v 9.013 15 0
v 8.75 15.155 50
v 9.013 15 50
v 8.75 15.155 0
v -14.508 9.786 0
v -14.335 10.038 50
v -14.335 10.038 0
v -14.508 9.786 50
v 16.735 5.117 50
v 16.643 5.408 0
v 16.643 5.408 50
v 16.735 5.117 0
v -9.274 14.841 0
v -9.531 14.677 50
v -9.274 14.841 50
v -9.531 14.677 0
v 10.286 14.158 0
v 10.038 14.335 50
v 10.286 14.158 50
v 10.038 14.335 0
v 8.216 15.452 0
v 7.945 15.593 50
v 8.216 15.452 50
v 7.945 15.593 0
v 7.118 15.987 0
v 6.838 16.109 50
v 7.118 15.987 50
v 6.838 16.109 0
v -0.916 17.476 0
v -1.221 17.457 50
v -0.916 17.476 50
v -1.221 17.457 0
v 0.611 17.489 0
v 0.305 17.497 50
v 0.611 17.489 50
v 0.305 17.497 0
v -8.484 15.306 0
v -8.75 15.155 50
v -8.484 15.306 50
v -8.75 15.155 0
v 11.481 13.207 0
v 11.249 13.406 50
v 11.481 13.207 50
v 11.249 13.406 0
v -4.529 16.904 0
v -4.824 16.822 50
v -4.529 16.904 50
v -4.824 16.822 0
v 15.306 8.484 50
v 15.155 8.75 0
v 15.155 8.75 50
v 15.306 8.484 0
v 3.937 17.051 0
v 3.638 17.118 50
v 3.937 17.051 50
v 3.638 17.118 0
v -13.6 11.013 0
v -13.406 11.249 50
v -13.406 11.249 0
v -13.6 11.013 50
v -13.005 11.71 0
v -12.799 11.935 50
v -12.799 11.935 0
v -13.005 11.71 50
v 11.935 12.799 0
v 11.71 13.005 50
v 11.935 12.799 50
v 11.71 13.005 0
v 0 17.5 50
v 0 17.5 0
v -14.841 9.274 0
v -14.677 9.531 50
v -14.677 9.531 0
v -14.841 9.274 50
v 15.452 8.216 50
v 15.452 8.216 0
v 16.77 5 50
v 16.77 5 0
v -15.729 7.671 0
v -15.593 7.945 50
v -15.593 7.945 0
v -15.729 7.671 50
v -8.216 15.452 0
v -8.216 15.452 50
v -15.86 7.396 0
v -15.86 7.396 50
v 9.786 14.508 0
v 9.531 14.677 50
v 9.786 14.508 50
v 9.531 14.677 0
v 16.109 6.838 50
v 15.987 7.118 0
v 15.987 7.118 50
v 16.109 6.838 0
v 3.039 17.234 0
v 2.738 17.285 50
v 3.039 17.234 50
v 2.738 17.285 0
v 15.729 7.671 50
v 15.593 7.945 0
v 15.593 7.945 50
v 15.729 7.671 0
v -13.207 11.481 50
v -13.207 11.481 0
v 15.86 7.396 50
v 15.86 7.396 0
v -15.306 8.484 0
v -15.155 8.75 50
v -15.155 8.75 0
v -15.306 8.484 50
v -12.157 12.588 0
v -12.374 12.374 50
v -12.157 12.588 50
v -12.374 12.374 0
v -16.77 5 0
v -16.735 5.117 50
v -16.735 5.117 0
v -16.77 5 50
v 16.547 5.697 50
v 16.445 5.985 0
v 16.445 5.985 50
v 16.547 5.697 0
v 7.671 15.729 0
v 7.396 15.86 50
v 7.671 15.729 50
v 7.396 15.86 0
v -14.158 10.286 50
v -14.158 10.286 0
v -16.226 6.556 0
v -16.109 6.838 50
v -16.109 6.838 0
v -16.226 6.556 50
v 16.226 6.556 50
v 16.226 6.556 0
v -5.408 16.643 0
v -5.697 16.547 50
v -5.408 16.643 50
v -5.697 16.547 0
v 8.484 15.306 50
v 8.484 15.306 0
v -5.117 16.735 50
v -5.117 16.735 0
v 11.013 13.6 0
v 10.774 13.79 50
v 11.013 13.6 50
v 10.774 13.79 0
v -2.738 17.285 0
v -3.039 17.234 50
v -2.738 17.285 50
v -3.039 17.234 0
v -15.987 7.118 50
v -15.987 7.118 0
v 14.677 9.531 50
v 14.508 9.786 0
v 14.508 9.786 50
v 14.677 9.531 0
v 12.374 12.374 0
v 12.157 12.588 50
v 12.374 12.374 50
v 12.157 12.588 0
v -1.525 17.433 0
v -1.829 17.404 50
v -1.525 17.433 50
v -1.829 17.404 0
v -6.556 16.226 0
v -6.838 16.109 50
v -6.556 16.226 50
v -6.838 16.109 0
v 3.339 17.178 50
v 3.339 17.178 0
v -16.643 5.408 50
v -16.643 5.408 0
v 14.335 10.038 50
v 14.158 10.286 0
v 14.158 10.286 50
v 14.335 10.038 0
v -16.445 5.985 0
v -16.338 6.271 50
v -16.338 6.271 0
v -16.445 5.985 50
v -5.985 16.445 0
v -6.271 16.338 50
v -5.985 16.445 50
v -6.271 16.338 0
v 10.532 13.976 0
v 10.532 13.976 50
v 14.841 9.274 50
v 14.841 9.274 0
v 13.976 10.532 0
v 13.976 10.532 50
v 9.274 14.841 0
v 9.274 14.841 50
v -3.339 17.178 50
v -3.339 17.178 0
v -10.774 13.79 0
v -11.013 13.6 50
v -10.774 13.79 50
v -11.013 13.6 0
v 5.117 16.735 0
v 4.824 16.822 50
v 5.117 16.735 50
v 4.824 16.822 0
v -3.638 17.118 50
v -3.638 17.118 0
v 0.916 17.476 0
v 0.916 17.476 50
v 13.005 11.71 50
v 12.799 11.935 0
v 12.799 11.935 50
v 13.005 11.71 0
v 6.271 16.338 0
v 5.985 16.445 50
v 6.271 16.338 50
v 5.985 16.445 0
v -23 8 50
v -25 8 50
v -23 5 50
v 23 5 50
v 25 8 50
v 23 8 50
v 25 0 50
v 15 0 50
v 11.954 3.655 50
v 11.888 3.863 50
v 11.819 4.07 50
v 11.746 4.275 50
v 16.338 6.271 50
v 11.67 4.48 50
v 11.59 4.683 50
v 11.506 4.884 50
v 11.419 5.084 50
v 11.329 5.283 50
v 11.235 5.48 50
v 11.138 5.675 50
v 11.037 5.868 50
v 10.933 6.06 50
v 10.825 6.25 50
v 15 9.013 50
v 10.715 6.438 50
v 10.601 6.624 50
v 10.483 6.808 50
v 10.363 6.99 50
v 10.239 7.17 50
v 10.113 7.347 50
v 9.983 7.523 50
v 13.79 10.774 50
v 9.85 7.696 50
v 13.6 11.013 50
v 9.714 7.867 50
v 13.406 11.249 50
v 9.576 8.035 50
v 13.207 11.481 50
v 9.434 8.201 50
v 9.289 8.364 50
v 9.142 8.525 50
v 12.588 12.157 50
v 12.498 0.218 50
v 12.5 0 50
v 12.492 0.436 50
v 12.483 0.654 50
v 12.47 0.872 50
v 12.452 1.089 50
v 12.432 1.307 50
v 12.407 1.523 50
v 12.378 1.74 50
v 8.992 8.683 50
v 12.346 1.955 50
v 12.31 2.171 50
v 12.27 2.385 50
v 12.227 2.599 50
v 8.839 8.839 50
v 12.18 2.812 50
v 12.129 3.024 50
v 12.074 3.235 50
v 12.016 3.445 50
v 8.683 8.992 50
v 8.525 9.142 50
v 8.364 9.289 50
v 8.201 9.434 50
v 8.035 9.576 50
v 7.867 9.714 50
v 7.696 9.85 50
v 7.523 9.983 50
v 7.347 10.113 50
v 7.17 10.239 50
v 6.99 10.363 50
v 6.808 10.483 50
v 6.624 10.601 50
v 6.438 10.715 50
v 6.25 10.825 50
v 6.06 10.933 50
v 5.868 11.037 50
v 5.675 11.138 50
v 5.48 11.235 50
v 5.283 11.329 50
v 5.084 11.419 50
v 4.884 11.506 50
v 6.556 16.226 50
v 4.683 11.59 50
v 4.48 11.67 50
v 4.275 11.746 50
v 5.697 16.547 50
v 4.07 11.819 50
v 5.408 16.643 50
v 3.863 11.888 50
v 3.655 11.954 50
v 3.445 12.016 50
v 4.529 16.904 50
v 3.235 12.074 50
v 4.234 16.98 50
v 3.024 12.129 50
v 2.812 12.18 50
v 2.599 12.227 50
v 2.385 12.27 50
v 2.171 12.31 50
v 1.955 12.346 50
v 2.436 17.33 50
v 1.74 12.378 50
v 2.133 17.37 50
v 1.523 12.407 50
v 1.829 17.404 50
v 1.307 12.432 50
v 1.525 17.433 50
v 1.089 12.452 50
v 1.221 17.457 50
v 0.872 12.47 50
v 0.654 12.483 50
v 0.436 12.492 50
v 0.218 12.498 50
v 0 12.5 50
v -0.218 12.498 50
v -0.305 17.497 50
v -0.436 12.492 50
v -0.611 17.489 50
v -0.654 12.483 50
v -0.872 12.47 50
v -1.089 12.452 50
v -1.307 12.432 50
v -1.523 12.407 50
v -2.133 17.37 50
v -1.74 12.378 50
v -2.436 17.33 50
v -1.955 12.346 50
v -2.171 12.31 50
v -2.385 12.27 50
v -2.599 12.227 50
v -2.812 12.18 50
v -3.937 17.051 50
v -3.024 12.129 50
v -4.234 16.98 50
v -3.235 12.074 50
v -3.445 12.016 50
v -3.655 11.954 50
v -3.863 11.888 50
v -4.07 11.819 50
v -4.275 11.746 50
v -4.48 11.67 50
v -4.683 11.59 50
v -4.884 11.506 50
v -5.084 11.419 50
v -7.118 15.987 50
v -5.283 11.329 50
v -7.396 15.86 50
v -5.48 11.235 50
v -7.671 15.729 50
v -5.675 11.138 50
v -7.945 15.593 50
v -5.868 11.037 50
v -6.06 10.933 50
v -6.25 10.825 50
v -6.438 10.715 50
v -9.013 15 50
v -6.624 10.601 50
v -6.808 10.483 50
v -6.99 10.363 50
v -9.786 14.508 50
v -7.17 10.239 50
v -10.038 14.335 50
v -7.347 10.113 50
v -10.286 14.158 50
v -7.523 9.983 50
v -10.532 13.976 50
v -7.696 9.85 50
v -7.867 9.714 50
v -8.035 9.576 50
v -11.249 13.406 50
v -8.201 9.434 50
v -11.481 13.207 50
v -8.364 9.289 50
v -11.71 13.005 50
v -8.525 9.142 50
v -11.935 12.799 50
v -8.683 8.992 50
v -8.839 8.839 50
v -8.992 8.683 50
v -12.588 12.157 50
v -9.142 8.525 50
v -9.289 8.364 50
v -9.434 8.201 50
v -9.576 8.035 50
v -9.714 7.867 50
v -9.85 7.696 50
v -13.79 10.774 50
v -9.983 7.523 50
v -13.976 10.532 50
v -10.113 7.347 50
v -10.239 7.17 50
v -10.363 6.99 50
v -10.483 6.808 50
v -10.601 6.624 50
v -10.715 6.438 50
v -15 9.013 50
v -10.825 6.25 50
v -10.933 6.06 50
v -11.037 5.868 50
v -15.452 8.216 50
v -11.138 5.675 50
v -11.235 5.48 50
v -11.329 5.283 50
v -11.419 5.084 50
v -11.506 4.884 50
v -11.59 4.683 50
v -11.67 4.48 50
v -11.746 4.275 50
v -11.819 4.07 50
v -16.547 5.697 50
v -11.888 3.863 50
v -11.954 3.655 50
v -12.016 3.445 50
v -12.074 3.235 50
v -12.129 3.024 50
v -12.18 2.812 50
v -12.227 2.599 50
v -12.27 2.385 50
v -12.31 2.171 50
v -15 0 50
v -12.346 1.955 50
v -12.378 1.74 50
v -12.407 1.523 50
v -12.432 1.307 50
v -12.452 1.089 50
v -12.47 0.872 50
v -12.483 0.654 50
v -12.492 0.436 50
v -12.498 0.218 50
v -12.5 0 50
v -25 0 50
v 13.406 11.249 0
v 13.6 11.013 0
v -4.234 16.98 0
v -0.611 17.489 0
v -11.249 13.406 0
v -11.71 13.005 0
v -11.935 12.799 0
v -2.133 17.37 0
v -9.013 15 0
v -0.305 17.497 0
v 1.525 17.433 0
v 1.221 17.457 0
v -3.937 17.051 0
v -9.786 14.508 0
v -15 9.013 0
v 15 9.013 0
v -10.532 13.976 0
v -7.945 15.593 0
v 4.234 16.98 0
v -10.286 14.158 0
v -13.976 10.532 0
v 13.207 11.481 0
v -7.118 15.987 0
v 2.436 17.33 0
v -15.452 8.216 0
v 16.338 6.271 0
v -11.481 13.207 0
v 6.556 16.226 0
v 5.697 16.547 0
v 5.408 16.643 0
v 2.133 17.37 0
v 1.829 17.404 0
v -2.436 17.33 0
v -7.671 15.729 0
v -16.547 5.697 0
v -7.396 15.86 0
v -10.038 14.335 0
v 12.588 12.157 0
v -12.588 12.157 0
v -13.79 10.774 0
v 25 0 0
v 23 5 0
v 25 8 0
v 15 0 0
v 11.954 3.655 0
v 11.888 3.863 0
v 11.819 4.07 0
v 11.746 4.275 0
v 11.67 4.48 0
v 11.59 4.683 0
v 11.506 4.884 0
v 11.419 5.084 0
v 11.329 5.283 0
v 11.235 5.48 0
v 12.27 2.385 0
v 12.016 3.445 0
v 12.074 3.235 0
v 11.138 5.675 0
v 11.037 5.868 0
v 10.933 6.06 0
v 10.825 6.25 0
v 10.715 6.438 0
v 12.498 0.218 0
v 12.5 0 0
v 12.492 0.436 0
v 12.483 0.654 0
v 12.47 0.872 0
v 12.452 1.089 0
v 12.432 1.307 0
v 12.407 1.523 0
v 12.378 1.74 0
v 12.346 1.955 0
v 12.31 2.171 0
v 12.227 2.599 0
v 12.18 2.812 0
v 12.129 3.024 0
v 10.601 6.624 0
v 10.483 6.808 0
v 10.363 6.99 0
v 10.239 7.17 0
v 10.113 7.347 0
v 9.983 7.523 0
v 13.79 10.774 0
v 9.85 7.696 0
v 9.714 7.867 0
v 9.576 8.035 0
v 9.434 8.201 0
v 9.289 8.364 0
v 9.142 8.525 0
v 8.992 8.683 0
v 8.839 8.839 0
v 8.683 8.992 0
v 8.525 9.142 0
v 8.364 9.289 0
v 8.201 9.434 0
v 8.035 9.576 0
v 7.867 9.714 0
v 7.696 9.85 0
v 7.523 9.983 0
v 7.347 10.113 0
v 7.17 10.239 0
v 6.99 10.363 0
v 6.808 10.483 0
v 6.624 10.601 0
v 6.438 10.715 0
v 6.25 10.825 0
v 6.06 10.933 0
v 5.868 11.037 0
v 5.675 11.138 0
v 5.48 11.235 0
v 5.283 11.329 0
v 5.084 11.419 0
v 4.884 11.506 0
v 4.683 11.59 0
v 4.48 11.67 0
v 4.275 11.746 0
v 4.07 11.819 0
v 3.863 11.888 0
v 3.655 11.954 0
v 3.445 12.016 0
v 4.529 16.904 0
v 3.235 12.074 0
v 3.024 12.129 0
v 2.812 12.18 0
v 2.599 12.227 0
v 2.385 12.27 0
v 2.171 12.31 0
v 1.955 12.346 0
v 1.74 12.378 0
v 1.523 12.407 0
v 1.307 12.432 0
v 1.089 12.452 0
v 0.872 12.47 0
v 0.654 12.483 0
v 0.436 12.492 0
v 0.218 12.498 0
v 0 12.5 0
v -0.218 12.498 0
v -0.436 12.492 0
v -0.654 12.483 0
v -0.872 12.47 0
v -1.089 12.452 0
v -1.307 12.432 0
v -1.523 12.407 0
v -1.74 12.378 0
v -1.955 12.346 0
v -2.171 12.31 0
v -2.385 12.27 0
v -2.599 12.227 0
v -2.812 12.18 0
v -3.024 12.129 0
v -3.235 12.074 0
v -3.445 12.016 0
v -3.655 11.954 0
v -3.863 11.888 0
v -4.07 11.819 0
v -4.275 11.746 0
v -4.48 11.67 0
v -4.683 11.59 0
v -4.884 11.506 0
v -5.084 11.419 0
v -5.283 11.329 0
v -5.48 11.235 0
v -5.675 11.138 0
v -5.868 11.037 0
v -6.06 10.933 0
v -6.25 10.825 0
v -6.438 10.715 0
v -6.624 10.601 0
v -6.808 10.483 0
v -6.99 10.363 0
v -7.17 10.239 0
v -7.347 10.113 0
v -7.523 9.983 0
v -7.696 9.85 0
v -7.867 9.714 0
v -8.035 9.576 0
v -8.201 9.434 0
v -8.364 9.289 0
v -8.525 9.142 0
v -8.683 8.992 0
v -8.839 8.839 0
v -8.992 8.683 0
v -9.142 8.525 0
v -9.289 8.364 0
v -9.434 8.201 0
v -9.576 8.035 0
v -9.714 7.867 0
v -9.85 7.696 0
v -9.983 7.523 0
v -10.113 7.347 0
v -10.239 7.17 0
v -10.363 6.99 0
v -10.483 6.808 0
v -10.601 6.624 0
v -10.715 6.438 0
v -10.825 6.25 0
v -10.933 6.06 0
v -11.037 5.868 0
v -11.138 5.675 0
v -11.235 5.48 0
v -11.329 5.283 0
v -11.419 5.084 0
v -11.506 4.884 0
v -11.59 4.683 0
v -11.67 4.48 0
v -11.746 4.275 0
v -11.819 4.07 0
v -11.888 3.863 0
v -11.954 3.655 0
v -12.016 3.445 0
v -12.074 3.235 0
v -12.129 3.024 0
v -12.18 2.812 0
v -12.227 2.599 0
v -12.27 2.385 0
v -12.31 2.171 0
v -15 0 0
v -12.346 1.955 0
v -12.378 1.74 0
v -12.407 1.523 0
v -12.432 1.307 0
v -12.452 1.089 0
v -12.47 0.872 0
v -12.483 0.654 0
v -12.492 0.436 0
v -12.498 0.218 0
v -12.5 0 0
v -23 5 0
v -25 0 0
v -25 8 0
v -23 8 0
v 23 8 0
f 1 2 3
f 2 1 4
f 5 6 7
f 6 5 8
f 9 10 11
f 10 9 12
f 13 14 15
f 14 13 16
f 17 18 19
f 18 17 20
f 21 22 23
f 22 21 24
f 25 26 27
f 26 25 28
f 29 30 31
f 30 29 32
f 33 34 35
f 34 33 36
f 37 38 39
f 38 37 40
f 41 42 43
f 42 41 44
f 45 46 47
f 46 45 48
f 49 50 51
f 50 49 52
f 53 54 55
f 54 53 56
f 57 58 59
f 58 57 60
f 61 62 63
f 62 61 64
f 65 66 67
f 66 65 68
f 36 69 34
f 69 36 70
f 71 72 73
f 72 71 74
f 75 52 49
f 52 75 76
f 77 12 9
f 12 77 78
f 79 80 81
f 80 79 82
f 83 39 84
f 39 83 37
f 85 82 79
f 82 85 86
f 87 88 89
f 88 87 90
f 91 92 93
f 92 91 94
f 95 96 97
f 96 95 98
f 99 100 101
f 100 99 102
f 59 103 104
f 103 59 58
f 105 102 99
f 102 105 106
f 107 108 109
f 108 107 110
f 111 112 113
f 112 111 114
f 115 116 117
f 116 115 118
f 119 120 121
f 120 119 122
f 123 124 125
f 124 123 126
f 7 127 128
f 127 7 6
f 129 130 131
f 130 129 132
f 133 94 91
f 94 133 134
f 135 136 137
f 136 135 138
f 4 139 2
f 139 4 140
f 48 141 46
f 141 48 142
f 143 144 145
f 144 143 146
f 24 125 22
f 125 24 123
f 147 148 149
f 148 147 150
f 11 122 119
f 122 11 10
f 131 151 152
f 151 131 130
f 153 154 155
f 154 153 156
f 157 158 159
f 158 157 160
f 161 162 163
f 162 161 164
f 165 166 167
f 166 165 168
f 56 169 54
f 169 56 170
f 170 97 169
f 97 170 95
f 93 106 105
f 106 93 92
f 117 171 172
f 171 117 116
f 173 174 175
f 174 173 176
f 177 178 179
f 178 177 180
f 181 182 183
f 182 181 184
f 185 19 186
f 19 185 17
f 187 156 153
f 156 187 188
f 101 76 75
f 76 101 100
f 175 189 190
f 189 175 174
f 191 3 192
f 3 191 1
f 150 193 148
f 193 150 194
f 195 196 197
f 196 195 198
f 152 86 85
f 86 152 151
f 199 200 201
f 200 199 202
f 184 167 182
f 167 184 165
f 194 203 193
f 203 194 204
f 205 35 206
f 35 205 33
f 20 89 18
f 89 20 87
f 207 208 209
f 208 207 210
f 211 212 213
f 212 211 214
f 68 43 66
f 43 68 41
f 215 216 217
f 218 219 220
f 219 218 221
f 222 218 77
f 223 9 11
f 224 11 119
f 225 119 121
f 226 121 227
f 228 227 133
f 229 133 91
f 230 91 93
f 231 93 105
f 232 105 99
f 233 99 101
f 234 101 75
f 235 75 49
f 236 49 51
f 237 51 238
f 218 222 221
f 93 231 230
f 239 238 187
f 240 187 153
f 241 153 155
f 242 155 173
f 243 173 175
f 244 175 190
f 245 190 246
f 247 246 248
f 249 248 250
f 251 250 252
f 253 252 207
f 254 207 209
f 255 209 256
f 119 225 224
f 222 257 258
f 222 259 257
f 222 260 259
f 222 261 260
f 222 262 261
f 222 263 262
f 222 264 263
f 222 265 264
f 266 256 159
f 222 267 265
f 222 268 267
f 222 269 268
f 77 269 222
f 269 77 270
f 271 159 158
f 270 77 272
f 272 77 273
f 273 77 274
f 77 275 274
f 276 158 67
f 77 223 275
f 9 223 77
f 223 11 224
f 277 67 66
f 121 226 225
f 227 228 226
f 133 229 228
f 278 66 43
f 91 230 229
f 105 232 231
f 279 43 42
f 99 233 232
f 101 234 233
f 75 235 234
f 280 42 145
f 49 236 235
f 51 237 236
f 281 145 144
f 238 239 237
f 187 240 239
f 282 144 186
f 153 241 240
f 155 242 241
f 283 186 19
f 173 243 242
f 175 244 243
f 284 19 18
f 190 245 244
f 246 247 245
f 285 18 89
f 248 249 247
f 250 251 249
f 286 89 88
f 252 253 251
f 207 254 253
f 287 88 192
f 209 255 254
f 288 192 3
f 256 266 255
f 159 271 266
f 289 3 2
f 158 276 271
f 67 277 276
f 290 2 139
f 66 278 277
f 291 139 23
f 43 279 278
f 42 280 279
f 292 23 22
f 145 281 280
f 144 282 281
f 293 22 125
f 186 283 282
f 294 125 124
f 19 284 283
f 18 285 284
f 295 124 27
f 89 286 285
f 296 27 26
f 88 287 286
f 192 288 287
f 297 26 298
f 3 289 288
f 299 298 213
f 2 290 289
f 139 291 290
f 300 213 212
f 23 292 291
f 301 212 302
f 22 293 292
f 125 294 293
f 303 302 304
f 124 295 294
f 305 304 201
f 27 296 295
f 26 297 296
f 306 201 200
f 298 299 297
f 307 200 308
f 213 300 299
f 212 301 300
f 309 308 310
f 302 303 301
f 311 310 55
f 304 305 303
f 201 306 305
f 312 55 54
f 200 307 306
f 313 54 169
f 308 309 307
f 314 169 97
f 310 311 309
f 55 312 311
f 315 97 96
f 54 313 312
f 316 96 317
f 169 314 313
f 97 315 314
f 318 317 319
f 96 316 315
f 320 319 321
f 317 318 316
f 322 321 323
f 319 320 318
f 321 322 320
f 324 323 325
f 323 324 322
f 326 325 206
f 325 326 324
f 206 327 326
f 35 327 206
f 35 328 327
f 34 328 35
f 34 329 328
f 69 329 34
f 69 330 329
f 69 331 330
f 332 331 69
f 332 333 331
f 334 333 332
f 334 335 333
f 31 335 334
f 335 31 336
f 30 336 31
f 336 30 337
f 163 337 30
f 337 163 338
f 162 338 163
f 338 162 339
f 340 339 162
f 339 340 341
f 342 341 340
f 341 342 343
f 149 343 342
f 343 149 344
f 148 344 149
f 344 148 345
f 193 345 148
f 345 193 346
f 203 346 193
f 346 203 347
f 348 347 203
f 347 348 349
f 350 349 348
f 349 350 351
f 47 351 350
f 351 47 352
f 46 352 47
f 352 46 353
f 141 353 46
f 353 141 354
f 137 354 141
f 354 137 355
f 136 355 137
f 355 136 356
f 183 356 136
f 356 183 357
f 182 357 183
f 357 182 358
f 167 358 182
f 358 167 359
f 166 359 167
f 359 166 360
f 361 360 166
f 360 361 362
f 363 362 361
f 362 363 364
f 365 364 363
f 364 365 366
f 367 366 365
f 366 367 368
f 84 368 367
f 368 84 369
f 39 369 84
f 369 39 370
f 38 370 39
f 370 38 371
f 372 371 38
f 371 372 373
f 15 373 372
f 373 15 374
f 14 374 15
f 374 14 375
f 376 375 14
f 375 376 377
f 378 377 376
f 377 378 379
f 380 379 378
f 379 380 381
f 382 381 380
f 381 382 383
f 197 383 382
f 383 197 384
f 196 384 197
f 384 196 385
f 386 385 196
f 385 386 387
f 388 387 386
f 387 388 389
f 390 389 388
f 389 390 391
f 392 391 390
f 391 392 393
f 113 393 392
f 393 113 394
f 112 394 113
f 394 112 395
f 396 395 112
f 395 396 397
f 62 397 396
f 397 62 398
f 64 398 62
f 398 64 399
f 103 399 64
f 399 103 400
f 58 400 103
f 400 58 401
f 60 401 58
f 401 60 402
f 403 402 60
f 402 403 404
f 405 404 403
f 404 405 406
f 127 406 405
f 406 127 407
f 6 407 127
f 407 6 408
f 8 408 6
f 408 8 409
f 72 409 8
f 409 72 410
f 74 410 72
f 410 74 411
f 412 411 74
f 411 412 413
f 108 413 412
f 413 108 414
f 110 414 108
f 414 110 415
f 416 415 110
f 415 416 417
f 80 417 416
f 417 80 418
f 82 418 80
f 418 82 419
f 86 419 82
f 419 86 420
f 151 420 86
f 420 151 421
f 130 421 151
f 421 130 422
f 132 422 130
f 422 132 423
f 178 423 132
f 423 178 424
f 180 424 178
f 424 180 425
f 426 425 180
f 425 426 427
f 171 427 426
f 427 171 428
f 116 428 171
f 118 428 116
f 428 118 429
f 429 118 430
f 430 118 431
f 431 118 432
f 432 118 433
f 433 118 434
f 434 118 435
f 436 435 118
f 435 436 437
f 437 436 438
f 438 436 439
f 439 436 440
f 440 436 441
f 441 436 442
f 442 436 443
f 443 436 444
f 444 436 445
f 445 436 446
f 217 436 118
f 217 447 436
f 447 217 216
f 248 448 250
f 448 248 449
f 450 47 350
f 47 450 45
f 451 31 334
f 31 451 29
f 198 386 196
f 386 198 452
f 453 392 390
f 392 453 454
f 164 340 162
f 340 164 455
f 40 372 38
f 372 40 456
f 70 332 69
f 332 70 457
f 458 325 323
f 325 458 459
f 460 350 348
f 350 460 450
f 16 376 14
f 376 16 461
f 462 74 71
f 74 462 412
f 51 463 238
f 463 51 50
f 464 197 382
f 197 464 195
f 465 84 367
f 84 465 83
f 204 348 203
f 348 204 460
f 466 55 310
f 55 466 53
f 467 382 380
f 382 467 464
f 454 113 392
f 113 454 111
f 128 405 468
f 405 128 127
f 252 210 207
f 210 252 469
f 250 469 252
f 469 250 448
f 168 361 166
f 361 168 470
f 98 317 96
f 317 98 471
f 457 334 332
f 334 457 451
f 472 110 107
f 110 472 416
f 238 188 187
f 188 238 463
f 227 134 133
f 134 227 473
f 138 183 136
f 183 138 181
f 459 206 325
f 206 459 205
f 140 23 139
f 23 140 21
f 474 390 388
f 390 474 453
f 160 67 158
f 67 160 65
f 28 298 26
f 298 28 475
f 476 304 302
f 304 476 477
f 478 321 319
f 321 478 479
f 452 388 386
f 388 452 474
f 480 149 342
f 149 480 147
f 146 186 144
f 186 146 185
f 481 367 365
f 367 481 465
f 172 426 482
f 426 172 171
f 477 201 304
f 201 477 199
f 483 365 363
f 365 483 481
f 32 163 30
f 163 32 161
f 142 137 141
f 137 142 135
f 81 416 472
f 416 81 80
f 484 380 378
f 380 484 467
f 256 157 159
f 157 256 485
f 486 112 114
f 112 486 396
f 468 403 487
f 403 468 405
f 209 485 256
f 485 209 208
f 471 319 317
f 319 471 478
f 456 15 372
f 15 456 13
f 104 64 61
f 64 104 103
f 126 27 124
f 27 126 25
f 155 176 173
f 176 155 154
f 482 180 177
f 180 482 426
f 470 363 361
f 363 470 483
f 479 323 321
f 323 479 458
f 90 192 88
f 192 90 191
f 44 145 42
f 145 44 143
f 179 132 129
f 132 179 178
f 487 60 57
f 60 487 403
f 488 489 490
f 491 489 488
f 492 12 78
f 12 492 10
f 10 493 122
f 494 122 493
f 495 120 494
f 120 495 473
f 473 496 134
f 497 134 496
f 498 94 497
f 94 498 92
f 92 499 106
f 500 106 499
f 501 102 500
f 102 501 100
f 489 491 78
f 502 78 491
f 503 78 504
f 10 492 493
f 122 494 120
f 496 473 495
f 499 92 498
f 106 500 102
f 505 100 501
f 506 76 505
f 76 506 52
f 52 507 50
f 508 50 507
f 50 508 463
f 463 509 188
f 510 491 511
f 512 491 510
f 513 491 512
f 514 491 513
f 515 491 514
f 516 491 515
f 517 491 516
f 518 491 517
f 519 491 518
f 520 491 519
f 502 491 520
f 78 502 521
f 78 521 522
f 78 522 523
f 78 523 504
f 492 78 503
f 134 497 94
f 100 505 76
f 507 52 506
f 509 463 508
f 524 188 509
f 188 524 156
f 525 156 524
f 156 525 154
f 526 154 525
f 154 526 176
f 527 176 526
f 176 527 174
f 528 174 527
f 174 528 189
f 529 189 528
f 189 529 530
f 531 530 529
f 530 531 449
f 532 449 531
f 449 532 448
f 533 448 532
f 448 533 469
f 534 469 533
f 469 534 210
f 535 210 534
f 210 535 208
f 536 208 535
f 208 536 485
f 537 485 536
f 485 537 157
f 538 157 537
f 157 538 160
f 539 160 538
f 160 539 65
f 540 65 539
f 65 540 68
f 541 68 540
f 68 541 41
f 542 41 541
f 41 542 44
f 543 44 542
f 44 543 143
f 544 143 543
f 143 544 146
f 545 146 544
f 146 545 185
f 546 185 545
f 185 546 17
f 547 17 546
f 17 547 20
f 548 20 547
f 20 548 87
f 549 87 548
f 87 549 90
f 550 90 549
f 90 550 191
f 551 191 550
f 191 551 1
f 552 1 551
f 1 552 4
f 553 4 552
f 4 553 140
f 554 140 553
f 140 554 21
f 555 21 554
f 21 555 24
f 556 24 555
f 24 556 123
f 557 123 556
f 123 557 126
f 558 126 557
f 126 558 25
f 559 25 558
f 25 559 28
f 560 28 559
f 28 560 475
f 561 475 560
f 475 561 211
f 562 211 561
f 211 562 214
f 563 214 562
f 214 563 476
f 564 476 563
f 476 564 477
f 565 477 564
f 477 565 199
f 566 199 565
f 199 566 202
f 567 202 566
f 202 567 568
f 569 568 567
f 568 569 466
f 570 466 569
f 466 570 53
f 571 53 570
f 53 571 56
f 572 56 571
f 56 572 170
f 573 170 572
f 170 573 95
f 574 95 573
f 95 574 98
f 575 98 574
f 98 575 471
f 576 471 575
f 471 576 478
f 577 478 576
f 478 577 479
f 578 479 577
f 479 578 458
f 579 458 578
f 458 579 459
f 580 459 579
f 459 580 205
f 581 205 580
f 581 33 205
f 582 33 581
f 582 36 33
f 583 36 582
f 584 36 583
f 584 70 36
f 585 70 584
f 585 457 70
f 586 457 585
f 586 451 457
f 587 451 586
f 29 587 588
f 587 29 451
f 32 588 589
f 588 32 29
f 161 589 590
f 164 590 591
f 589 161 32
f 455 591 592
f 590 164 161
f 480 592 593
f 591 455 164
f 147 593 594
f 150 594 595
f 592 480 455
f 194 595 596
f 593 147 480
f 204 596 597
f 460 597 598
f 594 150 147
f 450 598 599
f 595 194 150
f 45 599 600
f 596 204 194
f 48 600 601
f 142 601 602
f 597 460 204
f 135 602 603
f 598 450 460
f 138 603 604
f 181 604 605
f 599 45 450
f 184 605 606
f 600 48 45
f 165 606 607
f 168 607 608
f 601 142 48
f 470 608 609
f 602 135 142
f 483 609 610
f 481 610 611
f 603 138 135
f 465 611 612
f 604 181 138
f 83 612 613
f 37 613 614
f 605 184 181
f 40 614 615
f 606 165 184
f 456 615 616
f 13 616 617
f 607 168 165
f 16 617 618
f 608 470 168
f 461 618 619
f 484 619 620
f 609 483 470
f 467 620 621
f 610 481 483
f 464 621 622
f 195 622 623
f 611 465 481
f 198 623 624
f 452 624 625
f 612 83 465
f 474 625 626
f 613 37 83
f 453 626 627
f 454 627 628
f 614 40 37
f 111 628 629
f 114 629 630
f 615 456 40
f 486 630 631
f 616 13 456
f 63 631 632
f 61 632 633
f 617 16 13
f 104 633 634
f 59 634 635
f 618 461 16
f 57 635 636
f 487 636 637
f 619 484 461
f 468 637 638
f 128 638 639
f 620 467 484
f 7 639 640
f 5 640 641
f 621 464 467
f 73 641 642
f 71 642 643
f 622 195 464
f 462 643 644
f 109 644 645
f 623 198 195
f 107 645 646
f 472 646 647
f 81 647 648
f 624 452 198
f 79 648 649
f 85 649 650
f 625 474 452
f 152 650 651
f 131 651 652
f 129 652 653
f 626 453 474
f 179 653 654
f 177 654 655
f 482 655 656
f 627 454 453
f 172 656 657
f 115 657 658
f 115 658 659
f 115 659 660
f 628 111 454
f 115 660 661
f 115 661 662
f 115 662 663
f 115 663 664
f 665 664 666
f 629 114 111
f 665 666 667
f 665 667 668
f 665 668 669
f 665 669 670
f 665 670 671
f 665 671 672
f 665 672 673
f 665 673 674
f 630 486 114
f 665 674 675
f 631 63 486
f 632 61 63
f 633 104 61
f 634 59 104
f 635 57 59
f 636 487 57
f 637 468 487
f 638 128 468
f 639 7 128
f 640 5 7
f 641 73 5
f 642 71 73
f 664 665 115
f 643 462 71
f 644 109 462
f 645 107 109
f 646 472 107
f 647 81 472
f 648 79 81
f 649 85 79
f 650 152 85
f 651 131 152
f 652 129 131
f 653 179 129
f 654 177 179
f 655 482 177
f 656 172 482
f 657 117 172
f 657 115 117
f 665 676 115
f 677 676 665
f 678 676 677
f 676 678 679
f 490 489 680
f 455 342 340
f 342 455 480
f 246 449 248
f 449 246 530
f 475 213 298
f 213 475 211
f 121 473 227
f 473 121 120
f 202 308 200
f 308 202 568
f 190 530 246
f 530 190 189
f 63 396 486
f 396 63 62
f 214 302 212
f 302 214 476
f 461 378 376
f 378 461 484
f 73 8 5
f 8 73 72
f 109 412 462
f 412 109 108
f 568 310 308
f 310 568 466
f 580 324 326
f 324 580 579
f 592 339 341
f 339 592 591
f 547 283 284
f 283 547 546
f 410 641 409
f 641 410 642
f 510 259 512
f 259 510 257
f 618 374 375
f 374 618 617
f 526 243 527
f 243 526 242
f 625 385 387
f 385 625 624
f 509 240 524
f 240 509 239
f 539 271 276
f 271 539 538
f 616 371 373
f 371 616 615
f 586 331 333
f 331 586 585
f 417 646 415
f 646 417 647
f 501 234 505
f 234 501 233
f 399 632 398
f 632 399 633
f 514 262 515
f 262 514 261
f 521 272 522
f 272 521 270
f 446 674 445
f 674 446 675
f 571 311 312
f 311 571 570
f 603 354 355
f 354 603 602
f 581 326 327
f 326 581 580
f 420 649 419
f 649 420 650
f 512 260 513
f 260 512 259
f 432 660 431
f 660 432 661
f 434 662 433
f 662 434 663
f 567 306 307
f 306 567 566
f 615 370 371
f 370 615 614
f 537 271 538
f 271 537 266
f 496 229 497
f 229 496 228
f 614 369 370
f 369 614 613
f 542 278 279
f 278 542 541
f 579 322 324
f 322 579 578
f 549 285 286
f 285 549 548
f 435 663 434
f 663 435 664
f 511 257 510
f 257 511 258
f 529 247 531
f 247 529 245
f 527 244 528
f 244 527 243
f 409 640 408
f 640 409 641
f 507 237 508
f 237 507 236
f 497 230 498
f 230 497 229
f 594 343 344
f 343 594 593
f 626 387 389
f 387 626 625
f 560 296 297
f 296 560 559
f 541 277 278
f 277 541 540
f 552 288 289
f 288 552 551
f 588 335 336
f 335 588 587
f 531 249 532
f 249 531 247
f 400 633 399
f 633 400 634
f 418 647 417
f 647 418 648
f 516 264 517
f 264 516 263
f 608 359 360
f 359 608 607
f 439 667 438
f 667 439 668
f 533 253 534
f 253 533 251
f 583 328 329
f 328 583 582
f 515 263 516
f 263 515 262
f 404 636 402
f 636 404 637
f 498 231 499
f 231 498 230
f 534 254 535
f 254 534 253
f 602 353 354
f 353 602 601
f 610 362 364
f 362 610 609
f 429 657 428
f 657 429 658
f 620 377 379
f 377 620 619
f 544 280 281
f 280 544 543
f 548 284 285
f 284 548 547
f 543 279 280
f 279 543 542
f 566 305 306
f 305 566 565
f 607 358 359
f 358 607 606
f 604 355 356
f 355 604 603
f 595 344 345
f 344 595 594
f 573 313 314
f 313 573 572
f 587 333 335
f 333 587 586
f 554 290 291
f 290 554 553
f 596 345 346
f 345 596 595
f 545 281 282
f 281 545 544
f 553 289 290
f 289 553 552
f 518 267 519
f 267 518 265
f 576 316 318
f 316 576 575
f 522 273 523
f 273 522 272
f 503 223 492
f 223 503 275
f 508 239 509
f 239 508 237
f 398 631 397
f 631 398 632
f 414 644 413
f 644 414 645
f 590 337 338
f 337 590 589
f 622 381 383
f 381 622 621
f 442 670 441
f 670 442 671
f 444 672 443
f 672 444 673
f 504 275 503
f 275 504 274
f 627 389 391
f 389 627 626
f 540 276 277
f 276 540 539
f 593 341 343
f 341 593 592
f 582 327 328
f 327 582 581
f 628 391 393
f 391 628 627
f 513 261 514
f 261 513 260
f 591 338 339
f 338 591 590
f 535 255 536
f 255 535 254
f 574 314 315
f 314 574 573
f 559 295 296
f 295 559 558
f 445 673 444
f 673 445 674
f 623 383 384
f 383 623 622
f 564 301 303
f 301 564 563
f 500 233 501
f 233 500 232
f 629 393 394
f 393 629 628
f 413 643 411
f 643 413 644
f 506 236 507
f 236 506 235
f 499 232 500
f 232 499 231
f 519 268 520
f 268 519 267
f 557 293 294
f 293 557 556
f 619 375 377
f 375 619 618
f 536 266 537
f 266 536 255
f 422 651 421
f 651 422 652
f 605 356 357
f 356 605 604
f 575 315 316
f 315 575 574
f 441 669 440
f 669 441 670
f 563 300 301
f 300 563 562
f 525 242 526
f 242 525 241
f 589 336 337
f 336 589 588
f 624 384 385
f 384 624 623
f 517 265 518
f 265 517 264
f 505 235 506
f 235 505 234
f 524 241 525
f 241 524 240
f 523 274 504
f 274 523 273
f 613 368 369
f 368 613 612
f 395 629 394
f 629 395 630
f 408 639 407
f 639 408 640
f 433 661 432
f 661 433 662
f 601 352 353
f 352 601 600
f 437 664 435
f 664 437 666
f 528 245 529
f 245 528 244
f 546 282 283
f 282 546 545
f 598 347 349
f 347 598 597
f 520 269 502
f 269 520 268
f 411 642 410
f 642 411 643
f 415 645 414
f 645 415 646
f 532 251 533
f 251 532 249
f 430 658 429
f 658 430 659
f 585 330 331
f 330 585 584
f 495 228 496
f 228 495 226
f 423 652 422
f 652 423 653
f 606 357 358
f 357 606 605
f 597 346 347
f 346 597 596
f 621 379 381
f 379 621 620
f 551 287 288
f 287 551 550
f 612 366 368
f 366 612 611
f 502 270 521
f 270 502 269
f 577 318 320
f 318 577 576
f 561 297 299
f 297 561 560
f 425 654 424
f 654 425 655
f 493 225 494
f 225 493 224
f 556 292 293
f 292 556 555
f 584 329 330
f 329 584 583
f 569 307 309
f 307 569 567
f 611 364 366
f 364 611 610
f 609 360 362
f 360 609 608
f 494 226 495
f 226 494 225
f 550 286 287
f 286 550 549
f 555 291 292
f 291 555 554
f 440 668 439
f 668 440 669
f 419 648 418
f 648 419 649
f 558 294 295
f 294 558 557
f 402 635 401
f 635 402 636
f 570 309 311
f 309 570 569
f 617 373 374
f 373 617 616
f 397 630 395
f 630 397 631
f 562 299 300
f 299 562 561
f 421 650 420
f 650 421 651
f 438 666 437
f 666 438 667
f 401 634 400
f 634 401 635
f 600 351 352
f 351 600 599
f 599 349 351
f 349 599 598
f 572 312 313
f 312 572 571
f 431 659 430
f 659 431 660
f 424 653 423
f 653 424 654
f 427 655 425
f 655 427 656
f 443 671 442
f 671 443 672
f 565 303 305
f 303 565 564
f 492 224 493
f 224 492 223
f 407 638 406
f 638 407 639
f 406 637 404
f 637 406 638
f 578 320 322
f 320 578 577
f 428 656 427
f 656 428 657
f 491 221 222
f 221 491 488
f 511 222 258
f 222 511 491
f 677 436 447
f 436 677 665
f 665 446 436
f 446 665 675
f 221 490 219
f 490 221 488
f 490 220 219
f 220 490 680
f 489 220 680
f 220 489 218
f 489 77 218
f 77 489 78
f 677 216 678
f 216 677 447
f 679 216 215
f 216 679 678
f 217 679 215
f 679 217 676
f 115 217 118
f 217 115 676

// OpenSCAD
$fn = 360;

// half pipe
difference(){
    difference(){
        cylinder(50, r=17.5);
        translate([0, 0, -1]) cylinder(52, r=12.5);
    }
    translate([-25, -50, -1]) cube([50, 50, 52]);
}

// wings
translate([15, 0, 0]) difference(){
    cube([10, 8, 50]);
    translate([-2, 5, -1]) cube([10, 10, 52]);
}

translate([-25, 0, 0]) difference(){
    cube([10, 8, 50]);
    translate([2, 5, -1]) cube([10, 10, 52]);
}
